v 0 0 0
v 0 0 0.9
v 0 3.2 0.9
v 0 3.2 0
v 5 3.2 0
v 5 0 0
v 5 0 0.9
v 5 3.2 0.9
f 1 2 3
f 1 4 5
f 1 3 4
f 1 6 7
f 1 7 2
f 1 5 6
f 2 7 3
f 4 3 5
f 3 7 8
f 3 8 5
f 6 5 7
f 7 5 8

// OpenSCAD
/* Warning, this is a very basic generator with a lot of approximation 
input data : [VQFN, P9A, 5.0x3.2x0.9mm, 20, , A, C04-01117A]
generated by com.zoubworld.electronics.cad.model3d.Basic
Date : Sun Feb 15 10:50:49 CET 2026
*/

//body
color("black")
translate([0,0,0])
cube([5.0,3.2,0.9], center=false);
